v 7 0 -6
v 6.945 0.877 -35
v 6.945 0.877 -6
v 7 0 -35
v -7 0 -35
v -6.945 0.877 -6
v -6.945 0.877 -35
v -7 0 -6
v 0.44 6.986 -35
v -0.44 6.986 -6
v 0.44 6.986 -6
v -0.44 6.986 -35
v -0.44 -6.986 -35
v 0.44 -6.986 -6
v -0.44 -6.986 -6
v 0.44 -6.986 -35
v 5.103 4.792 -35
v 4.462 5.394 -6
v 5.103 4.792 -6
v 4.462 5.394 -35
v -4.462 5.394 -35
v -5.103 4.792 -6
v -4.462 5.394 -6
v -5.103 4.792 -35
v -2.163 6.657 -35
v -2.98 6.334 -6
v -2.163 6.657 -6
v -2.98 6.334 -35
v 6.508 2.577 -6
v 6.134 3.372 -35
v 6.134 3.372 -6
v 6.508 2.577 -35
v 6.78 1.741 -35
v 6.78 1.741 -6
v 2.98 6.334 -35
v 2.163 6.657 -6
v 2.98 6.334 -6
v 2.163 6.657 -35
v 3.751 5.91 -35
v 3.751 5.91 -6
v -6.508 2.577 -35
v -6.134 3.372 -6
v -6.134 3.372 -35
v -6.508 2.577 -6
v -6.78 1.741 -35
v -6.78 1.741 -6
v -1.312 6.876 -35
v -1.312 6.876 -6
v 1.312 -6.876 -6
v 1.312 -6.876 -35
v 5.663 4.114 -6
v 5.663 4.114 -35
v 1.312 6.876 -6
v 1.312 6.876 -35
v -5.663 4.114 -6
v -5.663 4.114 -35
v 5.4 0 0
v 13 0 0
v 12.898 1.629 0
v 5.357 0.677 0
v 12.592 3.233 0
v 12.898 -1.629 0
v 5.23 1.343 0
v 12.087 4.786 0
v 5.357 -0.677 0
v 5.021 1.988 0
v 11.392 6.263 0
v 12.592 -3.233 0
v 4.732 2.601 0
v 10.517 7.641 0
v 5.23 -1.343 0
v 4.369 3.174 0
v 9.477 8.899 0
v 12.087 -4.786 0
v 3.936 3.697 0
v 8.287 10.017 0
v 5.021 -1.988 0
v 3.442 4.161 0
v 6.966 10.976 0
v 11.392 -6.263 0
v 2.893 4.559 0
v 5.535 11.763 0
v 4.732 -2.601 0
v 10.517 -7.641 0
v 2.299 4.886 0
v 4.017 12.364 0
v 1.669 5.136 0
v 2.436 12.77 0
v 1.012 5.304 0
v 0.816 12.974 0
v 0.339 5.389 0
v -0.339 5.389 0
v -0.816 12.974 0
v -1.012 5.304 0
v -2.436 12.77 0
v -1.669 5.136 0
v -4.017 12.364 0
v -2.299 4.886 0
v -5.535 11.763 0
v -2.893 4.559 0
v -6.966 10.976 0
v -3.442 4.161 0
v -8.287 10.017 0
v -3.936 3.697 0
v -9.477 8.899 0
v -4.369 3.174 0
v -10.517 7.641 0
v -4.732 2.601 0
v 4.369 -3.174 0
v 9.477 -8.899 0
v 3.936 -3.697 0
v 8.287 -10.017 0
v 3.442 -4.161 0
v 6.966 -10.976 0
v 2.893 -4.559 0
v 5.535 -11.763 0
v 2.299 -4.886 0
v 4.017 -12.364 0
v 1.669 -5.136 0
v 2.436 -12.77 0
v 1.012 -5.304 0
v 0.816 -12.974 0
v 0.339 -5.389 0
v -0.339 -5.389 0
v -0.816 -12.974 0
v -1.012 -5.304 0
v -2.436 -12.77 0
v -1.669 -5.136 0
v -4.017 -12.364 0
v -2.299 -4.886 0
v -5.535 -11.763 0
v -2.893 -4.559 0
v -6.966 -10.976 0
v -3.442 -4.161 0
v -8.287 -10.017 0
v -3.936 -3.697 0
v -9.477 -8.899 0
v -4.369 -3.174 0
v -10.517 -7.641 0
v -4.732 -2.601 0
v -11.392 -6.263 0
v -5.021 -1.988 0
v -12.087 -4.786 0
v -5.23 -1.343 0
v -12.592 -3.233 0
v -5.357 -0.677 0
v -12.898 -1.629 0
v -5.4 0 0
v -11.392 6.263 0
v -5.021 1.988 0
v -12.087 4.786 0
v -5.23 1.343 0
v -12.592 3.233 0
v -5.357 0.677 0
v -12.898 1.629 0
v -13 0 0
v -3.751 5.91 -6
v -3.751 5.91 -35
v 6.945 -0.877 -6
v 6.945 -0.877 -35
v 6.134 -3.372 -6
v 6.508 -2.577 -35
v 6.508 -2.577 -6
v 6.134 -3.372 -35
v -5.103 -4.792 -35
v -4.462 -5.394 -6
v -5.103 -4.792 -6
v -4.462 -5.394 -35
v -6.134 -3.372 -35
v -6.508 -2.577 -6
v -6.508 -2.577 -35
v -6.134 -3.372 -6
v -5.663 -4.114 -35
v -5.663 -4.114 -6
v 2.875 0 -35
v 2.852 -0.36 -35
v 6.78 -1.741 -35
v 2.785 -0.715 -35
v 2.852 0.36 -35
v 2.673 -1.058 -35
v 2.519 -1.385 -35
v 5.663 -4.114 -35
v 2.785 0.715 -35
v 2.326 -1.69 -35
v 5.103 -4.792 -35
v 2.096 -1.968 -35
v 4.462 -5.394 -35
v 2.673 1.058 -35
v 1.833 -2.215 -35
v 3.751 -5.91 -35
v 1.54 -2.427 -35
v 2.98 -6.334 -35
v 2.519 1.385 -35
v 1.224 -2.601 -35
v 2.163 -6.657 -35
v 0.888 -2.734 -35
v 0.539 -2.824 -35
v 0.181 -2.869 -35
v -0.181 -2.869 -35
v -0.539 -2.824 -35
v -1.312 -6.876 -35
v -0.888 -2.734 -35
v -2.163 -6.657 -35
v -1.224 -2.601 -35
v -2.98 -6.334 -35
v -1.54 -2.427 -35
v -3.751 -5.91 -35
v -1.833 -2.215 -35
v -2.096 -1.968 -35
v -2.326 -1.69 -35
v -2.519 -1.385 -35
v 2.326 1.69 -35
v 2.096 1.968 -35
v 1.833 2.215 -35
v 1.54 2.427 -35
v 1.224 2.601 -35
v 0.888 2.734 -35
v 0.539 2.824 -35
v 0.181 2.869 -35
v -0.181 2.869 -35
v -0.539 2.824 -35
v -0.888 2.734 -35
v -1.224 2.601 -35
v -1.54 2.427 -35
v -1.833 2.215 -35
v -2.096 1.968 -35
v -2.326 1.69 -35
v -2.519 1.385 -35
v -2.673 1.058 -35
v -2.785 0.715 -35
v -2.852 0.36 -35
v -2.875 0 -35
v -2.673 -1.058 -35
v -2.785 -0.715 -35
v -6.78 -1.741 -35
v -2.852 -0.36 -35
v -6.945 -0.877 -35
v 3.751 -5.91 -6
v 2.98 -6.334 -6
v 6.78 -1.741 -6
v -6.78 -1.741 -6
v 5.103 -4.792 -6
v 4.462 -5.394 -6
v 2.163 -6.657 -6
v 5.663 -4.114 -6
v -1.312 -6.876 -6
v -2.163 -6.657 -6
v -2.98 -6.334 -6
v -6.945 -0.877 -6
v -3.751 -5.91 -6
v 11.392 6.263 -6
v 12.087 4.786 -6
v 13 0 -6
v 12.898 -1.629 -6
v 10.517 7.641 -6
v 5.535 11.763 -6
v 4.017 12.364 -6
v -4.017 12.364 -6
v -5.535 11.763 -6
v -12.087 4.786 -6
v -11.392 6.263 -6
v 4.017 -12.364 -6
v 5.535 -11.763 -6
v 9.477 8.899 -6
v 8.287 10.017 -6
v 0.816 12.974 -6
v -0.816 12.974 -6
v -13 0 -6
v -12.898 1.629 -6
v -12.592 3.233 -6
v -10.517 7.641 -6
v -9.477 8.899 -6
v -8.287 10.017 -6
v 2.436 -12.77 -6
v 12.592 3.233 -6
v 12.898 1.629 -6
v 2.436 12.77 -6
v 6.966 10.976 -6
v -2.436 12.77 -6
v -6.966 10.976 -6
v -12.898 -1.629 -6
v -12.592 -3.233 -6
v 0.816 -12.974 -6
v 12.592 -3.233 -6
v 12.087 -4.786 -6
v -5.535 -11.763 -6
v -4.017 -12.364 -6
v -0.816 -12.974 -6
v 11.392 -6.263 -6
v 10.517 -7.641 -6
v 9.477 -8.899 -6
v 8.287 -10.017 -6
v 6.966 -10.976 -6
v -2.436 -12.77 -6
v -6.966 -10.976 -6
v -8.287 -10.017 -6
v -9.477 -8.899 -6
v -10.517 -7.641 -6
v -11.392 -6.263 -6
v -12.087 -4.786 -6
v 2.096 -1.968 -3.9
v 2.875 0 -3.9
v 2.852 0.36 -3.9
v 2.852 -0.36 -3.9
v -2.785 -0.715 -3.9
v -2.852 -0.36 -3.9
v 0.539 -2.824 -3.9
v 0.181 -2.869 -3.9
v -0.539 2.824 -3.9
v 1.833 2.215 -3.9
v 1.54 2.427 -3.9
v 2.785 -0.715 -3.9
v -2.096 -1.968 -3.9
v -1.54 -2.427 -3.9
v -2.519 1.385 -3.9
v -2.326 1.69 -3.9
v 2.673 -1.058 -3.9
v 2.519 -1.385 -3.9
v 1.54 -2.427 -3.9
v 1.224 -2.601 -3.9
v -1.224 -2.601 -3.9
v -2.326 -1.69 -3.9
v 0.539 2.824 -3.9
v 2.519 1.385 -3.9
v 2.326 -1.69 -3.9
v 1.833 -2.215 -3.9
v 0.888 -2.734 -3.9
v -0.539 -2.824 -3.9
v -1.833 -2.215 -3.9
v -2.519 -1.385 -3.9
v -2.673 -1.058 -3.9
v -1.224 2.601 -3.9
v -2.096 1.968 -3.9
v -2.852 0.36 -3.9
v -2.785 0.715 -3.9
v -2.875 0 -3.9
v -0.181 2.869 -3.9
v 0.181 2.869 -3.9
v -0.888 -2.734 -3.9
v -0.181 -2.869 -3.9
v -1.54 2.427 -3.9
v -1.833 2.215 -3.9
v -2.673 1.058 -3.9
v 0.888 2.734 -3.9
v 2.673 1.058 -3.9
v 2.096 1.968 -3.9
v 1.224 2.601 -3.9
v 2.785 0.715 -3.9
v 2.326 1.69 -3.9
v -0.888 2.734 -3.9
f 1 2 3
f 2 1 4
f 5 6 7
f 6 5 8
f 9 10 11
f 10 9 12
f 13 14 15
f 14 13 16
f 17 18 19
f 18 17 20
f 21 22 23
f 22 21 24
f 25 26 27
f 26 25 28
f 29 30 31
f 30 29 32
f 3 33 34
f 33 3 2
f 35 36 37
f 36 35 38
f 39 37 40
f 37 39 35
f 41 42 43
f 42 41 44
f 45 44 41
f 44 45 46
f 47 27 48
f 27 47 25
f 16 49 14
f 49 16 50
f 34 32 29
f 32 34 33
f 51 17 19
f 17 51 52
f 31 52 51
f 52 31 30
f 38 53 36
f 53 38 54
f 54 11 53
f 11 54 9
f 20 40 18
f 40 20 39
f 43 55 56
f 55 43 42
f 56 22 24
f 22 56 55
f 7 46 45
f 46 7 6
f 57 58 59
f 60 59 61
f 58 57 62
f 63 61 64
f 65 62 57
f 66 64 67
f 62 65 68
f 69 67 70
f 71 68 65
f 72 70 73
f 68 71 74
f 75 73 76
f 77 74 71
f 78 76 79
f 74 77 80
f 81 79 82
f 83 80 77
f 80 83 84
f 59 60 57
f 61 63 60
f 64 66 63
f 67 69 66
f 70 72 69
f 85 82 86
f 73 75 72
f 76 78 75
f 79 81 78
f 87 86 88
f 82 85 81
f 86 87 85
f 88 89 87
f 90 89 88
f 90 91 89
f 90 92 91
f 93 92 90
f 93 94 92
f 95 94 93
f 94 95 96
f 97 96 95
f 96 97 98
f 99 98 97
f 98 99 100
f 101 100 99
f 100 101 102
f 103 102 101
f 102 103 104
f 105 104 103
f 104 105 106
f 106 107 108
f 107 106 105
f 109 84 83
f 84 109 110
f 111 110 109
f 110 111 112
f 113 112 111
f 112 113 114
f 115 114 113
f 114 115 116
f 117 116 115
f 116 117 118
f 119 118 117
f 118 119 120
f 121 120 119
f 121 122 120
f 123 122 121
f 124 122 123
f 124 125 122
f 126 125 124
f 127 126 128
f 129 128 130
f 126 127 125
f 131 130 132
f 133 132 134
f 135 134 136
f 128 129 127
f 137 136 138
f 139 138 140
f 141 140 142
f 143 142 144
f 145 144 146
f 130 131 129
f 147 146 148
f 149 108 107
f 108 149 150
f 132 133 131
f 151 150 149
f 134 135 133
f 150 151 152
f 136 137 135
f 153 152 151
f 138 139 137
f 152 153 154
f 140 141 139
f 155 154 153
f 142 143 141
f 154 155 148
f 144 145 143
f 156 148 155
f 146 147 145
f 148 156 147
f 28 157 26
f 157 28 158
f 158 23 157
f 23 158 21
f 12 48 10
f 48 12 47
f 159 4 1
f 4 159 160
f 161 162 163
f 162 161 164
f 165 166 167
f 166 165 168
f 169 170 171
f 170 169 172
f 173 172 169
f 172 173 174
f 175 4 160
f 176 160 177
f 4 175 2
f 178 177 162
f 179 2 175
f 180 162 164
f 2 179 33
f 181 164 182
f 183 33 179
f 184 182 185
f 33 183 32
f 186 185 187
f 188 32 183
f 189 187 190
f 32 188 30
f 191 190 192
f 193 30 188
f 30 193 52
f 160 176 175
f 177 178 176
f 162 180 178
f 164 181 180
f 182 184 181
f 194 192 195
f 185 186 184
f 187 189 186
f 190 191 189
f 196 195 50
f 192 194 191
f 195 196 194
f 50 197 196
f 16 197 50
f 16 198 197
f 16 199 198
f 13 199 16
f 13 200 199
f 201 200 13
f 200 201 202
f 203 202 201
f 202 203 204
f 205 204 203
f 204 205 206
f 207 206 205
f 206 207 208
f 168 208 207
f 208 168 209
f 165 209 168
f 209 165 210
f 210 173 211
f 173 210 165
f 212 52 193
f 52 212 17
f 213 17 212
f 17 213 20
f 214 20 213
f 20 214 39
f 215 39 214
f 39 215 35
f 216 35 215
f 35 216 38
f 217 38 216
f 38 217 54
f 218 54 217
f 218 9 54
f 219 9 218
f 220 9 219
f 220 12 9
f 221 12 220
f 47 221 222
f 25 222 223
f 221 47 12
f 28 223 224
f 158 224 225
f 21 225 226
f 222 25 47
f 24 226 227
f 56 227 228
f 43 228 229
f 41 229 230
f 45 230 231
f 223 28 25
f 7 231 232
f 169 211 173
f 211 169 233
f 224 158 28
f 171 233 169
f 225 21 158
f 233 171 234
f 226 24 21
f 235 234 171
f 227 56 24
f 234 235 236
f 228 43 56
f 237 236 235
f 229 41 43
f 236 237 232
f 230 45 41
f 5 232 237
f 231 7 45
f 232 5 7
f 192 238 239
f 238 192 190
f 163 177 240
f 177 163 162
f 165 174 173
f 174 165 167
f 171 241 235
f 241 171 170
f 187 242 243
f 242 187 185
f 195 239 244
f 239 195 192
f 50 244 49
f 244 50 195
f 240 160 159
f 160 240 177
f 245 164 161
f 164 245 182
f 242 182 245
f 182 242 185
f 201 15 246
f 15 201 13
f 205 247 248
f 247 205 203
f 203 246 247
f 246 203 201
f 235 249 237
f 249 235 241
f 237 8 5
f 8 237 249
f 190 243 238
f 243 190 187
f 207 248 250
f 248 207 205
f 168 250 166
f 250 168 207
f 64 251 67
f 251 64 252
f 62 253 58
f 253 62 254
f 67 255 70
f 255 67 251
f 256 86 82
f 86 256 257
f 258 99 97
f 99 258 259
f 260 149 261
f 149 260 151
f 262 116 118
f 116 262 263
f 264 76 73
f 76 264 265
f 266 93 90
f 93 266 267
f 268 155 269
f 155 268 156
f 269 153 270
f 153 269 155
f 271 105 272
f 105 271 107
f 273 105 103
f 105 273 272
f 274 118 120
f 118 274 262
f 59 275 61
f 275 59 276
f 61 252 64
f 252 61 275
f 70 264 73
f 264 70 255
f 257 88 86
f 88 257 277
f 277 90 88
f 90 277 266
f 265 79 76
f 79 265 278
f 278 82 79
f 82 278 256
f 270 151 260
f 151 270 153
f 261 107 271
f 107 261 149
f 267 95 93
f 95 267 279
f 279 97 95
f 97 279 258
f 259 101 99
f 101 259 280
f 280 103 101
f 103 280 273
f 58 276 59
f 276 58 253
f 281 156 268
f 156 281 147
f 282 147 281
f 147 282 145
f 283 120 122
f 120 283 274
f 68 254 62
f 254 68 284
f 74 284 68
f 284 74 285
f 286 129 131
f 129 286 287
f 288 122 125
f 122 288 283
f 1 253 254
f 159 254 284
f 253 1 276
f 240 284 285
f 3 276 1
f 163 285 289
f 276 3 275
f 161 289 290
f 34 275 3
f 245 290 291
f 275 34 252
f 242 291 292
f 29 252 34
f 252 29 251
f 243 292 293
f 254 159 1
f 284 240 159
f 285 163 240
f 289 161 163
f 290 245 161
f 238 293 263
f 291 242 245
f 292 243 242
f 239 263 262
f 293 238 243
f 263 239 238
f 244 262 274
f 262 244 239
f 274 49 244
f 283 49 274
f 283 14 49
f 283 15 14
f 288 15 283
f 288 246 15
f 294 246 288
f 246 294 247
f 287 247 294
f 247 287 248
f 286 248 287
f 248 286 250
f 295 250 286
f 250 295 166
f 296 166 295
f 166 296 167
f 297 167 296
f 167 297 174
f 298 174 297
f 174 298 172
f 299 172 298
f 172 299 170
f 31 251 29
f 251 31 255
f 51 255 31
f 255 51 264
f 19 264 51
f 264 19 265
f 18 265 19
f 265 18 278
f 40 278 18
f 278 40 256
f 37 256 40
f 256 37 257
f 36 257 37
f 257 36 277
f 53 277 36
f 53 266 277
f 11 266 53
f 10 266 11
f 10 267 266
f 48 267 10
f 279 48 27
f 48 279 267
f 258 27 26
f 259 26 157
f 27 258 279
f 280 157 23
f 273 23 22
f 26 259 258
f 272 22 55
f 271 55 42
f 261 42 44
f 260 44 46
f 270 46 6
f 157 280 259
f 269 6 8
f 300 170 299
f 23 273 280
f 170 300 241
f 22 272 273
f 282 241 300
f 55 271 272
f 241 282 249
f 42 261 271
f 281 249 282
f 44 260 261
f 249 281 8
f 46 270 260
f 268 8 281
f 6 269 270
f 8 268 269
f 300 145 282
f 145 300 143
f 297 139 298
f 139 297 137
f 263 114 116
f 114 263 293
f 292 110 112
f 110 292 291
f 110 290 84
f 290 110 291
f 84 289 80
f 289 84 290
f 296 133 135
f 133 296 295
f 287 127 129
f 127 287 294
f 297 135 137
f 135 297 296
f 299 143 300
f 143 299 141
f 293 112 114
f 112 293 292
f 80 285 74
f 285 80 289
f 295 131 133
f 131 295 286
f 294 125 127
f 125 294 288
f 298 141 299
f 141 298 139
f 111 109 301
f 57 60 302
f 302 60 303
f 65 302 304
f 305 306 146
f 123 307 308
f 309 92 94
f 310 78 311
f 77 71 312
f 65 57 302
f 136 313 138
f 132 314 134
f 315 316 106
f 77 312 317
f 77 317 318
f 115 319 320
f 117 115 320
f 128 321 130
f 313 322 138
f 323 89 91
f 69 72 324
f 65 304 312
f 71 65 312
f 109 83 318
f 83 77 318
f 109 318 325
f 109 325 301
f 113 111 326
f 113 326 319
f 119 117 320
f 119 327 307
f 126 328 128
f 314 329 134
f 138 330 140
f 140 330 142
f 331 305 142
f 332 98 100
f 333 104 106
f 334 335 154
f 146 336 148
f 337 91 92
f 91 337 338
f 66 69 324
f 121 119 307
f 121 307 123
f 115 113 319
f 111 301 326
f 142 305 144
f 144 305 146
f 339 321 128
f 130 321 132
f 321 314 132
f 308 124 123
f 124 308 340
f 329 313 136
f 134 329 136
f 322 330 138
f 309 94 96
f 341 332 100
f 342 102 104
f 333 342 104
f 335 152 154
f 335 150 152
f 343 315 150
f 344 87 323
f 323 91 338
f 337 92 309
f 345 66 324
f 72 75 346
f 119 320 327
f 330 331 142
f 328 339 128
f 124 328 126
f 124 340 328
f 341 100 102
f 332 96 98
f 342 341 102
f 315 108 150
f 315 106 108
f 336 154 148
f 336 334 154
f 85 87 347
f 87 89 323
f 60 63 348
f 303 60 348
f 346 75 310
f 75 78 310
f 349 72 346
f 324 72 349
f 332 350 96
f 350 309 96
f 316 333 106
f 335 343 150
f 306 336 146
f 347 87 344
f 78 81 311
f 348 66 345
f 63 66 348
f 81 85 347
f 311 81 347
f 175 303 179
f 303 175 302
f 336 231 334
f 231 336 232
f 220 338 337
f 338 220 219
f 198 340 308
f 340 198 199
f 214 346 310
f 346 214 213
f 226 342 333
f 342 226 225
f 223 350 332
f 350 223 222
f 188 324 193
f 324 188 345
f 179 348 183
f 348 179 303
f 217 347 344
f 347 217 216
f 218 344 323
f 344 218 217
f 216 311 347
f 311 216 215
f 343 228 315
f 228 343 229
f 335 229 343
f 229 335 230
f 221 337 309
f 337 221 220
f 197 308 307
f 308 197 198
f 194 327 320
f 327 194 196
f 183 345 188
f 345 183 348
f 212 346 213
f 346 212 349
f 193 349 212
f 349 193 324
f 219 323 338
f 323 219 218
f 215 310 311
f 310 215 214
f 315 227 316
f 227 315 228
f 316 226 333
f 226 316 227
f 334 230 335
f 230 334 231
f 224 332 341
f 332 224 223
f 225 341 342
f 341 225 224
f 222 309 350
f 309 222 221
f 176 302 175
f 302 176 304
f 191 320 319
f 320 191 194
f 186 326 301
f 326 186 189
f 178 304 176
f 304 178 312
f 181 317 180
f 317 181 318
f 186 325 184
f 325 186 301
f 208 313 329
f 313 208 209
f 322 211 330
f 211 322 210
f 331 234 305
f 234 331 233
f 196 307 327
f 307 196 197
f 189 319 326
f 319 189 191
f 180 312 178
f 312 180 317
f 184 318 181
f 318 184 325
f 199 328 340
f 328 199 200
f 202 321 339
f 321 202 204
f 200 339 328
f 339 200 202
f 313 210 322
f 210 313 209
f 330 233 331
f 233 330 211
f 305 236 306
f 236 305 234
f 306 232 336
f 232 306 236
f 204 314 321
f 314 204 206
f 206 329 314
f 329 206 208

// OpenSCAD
$fn = 50;


difference() {
	union() {
		translate(v = [0, 0, -35.0000000000]) {
			cylinder(h = 35, r = 7.0000000000);
		}
		translate(v = [0, 0, -6.0000000000]) {
			cylinder(h = 6, r = 13.0000000000);
		}
	}
	union() {
		translate(v = [0, 0, 0]) {
			rotate(a = [0, 0, 0]) {
				difference() {
					union() {
						#translate(v = [0, 0, -35.0000000000]) {
							cylinder(h = 35, r = 2.6000000000);
						}
						#translate(v = [0, 0, -3.9000000000]) {
							cylinder(h = 3.9000000000, r = 7.0000000000, r1 = 2.8750000000, r2 = 5.4000000000);
						}
						#translate(v = [0, 0, -35.0000000000]) {
							cylinder(h = 35, r = 2.8750000000);
						}
						#translate(v = [0, 0, -35.0000000000]) {
							cylinder(h = 35, r = 2.6000000000);
						}
					}
					union();
				}
			}
		}
	}
}
